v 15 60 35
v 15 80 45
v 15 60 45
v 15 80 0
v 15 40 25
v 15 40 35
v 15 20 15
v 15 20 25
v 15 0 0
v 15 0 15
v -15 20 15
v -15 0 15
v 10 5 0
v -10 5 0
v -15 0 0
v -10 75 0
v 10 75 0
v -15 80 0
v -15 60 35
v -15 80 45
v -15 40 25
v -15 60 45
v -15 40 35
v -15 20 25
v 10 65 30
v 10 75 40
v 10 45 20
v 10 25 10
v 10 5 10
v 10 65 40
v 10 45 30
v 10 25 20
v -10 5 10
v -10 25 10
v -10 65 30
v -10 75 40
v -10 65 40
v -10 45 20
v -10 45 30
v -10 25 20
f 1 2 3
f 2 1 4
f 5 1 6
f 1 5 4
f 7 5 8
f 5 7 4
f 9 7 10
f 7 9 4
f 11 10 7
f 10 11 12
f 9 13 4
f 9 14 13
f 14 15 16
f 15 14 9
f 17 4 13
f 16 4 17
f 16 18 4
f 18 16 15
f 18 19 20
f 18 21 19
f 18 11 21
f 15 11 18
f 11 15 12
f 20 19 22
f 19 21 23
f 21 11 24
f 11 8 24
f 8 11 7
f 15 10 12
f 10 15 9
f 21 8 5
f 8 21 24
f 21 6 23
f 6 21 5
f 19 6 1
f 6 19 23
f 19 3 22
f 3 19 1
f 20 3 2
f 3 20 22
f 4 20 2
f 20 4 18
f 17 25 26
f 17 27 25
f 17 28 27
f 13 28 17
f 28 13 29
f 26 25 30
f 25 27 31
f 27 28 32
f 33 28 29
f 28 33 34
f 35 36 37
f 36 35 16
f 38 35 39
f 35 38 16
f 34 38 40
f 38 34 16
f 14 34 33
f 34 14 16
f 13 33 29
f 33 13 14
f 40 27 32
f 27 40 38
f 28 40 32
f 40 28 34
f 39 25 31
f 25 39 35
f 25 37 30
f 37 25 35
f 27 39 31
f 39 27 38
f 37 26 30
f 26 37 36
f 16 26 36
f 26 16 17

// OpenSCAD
// Friday June 13 
// Jessica Snyder 
// Copy a step mold 

// Define step model parameters in mm
x = 30;
y = 20;
z = 10;
t = 5;

// set the number of steps 
steps = 4;

// outer box dimensions 
t1 = t; 
x2 = x;
y2 = y; 
z2 = z; 

// inner box dimensions
x1 = x2 - 2*t1;
y1 = y2 - 2*t1; 
z1 = z2;


// subtract the inner steps from the outsteps to create void 
difference(){
    
    outersteps(); 
    innersteps();
    
    }




// Model the innersteps 
module innersteps(){
    // create a loop to make the steps 
    for (i = [0:steps]){
        
        // create the box 
        // set the color as an [red, green, blue, opacity]. Each value has a minimum of 0 and maximum of 1  
        translate([-x1/2, (i-1)*y2+t1, 0])
        color([.5, .2, .2, .8])
        cube([x1, y1*(steps-i+1), i*z1]);
        
    }
    }

// Model the outersteps 
module outersteps(){
    
    // create a loop to make the steps 
    for (i = [1:steps]){
        
        // create the box 
        // set the color as an [red, green, blue, opacity]. Each value has a minimum of 0 and maximum of 1  
        translate([-x2/2, (i-1)*y2, 0])
        color([.2, .4, .5, .8])
        cube([x2, y2, i*z2+t1]);
     
        }
    }
